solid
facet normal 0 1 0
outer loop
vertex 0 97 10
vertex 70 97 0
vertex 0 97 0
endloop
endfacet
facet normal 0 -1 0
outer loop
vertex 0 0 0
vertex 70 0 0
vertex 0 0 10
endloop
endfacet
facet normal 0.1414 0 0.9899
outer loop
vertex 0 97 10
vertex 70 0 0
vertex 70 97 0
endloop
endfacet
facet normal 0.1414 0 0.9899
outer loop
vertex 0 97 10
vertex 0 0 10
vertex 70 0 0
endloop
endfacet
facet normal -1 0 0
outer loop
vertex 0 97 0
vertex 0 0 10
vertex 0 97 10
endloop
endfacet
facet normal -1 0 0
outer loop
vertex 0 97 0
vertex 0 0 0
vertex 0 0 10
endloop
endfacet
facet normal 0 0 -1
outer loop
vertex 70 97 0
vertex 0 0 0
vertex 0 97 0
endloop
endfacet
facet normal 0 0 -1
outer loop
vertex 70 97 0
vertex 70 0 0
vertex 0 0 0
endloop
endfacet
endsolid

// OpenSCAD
echo(version=version());

$wall_thickness = 3;
$card_space_width = 97;
$fn = 50;

height = 70;
depth = 10;

module triangular_prism(width, height, depth, distance="undef") {
  _distance = (distance == "undef")
    ? (width / 2)
    : distance;

  translate([0, depth, width]) {
    rotate([90, 90, 0]) {
      linear_extrude(depth) {
        polygon([[0, 0], [width, 0], [_distance, height]]);
      }
    }
  }
}

module card_slope(height, depth, width=$card_space_width) {
  triangular_prism(depth, height, width, depth);
}

card_slope(height, depth);
